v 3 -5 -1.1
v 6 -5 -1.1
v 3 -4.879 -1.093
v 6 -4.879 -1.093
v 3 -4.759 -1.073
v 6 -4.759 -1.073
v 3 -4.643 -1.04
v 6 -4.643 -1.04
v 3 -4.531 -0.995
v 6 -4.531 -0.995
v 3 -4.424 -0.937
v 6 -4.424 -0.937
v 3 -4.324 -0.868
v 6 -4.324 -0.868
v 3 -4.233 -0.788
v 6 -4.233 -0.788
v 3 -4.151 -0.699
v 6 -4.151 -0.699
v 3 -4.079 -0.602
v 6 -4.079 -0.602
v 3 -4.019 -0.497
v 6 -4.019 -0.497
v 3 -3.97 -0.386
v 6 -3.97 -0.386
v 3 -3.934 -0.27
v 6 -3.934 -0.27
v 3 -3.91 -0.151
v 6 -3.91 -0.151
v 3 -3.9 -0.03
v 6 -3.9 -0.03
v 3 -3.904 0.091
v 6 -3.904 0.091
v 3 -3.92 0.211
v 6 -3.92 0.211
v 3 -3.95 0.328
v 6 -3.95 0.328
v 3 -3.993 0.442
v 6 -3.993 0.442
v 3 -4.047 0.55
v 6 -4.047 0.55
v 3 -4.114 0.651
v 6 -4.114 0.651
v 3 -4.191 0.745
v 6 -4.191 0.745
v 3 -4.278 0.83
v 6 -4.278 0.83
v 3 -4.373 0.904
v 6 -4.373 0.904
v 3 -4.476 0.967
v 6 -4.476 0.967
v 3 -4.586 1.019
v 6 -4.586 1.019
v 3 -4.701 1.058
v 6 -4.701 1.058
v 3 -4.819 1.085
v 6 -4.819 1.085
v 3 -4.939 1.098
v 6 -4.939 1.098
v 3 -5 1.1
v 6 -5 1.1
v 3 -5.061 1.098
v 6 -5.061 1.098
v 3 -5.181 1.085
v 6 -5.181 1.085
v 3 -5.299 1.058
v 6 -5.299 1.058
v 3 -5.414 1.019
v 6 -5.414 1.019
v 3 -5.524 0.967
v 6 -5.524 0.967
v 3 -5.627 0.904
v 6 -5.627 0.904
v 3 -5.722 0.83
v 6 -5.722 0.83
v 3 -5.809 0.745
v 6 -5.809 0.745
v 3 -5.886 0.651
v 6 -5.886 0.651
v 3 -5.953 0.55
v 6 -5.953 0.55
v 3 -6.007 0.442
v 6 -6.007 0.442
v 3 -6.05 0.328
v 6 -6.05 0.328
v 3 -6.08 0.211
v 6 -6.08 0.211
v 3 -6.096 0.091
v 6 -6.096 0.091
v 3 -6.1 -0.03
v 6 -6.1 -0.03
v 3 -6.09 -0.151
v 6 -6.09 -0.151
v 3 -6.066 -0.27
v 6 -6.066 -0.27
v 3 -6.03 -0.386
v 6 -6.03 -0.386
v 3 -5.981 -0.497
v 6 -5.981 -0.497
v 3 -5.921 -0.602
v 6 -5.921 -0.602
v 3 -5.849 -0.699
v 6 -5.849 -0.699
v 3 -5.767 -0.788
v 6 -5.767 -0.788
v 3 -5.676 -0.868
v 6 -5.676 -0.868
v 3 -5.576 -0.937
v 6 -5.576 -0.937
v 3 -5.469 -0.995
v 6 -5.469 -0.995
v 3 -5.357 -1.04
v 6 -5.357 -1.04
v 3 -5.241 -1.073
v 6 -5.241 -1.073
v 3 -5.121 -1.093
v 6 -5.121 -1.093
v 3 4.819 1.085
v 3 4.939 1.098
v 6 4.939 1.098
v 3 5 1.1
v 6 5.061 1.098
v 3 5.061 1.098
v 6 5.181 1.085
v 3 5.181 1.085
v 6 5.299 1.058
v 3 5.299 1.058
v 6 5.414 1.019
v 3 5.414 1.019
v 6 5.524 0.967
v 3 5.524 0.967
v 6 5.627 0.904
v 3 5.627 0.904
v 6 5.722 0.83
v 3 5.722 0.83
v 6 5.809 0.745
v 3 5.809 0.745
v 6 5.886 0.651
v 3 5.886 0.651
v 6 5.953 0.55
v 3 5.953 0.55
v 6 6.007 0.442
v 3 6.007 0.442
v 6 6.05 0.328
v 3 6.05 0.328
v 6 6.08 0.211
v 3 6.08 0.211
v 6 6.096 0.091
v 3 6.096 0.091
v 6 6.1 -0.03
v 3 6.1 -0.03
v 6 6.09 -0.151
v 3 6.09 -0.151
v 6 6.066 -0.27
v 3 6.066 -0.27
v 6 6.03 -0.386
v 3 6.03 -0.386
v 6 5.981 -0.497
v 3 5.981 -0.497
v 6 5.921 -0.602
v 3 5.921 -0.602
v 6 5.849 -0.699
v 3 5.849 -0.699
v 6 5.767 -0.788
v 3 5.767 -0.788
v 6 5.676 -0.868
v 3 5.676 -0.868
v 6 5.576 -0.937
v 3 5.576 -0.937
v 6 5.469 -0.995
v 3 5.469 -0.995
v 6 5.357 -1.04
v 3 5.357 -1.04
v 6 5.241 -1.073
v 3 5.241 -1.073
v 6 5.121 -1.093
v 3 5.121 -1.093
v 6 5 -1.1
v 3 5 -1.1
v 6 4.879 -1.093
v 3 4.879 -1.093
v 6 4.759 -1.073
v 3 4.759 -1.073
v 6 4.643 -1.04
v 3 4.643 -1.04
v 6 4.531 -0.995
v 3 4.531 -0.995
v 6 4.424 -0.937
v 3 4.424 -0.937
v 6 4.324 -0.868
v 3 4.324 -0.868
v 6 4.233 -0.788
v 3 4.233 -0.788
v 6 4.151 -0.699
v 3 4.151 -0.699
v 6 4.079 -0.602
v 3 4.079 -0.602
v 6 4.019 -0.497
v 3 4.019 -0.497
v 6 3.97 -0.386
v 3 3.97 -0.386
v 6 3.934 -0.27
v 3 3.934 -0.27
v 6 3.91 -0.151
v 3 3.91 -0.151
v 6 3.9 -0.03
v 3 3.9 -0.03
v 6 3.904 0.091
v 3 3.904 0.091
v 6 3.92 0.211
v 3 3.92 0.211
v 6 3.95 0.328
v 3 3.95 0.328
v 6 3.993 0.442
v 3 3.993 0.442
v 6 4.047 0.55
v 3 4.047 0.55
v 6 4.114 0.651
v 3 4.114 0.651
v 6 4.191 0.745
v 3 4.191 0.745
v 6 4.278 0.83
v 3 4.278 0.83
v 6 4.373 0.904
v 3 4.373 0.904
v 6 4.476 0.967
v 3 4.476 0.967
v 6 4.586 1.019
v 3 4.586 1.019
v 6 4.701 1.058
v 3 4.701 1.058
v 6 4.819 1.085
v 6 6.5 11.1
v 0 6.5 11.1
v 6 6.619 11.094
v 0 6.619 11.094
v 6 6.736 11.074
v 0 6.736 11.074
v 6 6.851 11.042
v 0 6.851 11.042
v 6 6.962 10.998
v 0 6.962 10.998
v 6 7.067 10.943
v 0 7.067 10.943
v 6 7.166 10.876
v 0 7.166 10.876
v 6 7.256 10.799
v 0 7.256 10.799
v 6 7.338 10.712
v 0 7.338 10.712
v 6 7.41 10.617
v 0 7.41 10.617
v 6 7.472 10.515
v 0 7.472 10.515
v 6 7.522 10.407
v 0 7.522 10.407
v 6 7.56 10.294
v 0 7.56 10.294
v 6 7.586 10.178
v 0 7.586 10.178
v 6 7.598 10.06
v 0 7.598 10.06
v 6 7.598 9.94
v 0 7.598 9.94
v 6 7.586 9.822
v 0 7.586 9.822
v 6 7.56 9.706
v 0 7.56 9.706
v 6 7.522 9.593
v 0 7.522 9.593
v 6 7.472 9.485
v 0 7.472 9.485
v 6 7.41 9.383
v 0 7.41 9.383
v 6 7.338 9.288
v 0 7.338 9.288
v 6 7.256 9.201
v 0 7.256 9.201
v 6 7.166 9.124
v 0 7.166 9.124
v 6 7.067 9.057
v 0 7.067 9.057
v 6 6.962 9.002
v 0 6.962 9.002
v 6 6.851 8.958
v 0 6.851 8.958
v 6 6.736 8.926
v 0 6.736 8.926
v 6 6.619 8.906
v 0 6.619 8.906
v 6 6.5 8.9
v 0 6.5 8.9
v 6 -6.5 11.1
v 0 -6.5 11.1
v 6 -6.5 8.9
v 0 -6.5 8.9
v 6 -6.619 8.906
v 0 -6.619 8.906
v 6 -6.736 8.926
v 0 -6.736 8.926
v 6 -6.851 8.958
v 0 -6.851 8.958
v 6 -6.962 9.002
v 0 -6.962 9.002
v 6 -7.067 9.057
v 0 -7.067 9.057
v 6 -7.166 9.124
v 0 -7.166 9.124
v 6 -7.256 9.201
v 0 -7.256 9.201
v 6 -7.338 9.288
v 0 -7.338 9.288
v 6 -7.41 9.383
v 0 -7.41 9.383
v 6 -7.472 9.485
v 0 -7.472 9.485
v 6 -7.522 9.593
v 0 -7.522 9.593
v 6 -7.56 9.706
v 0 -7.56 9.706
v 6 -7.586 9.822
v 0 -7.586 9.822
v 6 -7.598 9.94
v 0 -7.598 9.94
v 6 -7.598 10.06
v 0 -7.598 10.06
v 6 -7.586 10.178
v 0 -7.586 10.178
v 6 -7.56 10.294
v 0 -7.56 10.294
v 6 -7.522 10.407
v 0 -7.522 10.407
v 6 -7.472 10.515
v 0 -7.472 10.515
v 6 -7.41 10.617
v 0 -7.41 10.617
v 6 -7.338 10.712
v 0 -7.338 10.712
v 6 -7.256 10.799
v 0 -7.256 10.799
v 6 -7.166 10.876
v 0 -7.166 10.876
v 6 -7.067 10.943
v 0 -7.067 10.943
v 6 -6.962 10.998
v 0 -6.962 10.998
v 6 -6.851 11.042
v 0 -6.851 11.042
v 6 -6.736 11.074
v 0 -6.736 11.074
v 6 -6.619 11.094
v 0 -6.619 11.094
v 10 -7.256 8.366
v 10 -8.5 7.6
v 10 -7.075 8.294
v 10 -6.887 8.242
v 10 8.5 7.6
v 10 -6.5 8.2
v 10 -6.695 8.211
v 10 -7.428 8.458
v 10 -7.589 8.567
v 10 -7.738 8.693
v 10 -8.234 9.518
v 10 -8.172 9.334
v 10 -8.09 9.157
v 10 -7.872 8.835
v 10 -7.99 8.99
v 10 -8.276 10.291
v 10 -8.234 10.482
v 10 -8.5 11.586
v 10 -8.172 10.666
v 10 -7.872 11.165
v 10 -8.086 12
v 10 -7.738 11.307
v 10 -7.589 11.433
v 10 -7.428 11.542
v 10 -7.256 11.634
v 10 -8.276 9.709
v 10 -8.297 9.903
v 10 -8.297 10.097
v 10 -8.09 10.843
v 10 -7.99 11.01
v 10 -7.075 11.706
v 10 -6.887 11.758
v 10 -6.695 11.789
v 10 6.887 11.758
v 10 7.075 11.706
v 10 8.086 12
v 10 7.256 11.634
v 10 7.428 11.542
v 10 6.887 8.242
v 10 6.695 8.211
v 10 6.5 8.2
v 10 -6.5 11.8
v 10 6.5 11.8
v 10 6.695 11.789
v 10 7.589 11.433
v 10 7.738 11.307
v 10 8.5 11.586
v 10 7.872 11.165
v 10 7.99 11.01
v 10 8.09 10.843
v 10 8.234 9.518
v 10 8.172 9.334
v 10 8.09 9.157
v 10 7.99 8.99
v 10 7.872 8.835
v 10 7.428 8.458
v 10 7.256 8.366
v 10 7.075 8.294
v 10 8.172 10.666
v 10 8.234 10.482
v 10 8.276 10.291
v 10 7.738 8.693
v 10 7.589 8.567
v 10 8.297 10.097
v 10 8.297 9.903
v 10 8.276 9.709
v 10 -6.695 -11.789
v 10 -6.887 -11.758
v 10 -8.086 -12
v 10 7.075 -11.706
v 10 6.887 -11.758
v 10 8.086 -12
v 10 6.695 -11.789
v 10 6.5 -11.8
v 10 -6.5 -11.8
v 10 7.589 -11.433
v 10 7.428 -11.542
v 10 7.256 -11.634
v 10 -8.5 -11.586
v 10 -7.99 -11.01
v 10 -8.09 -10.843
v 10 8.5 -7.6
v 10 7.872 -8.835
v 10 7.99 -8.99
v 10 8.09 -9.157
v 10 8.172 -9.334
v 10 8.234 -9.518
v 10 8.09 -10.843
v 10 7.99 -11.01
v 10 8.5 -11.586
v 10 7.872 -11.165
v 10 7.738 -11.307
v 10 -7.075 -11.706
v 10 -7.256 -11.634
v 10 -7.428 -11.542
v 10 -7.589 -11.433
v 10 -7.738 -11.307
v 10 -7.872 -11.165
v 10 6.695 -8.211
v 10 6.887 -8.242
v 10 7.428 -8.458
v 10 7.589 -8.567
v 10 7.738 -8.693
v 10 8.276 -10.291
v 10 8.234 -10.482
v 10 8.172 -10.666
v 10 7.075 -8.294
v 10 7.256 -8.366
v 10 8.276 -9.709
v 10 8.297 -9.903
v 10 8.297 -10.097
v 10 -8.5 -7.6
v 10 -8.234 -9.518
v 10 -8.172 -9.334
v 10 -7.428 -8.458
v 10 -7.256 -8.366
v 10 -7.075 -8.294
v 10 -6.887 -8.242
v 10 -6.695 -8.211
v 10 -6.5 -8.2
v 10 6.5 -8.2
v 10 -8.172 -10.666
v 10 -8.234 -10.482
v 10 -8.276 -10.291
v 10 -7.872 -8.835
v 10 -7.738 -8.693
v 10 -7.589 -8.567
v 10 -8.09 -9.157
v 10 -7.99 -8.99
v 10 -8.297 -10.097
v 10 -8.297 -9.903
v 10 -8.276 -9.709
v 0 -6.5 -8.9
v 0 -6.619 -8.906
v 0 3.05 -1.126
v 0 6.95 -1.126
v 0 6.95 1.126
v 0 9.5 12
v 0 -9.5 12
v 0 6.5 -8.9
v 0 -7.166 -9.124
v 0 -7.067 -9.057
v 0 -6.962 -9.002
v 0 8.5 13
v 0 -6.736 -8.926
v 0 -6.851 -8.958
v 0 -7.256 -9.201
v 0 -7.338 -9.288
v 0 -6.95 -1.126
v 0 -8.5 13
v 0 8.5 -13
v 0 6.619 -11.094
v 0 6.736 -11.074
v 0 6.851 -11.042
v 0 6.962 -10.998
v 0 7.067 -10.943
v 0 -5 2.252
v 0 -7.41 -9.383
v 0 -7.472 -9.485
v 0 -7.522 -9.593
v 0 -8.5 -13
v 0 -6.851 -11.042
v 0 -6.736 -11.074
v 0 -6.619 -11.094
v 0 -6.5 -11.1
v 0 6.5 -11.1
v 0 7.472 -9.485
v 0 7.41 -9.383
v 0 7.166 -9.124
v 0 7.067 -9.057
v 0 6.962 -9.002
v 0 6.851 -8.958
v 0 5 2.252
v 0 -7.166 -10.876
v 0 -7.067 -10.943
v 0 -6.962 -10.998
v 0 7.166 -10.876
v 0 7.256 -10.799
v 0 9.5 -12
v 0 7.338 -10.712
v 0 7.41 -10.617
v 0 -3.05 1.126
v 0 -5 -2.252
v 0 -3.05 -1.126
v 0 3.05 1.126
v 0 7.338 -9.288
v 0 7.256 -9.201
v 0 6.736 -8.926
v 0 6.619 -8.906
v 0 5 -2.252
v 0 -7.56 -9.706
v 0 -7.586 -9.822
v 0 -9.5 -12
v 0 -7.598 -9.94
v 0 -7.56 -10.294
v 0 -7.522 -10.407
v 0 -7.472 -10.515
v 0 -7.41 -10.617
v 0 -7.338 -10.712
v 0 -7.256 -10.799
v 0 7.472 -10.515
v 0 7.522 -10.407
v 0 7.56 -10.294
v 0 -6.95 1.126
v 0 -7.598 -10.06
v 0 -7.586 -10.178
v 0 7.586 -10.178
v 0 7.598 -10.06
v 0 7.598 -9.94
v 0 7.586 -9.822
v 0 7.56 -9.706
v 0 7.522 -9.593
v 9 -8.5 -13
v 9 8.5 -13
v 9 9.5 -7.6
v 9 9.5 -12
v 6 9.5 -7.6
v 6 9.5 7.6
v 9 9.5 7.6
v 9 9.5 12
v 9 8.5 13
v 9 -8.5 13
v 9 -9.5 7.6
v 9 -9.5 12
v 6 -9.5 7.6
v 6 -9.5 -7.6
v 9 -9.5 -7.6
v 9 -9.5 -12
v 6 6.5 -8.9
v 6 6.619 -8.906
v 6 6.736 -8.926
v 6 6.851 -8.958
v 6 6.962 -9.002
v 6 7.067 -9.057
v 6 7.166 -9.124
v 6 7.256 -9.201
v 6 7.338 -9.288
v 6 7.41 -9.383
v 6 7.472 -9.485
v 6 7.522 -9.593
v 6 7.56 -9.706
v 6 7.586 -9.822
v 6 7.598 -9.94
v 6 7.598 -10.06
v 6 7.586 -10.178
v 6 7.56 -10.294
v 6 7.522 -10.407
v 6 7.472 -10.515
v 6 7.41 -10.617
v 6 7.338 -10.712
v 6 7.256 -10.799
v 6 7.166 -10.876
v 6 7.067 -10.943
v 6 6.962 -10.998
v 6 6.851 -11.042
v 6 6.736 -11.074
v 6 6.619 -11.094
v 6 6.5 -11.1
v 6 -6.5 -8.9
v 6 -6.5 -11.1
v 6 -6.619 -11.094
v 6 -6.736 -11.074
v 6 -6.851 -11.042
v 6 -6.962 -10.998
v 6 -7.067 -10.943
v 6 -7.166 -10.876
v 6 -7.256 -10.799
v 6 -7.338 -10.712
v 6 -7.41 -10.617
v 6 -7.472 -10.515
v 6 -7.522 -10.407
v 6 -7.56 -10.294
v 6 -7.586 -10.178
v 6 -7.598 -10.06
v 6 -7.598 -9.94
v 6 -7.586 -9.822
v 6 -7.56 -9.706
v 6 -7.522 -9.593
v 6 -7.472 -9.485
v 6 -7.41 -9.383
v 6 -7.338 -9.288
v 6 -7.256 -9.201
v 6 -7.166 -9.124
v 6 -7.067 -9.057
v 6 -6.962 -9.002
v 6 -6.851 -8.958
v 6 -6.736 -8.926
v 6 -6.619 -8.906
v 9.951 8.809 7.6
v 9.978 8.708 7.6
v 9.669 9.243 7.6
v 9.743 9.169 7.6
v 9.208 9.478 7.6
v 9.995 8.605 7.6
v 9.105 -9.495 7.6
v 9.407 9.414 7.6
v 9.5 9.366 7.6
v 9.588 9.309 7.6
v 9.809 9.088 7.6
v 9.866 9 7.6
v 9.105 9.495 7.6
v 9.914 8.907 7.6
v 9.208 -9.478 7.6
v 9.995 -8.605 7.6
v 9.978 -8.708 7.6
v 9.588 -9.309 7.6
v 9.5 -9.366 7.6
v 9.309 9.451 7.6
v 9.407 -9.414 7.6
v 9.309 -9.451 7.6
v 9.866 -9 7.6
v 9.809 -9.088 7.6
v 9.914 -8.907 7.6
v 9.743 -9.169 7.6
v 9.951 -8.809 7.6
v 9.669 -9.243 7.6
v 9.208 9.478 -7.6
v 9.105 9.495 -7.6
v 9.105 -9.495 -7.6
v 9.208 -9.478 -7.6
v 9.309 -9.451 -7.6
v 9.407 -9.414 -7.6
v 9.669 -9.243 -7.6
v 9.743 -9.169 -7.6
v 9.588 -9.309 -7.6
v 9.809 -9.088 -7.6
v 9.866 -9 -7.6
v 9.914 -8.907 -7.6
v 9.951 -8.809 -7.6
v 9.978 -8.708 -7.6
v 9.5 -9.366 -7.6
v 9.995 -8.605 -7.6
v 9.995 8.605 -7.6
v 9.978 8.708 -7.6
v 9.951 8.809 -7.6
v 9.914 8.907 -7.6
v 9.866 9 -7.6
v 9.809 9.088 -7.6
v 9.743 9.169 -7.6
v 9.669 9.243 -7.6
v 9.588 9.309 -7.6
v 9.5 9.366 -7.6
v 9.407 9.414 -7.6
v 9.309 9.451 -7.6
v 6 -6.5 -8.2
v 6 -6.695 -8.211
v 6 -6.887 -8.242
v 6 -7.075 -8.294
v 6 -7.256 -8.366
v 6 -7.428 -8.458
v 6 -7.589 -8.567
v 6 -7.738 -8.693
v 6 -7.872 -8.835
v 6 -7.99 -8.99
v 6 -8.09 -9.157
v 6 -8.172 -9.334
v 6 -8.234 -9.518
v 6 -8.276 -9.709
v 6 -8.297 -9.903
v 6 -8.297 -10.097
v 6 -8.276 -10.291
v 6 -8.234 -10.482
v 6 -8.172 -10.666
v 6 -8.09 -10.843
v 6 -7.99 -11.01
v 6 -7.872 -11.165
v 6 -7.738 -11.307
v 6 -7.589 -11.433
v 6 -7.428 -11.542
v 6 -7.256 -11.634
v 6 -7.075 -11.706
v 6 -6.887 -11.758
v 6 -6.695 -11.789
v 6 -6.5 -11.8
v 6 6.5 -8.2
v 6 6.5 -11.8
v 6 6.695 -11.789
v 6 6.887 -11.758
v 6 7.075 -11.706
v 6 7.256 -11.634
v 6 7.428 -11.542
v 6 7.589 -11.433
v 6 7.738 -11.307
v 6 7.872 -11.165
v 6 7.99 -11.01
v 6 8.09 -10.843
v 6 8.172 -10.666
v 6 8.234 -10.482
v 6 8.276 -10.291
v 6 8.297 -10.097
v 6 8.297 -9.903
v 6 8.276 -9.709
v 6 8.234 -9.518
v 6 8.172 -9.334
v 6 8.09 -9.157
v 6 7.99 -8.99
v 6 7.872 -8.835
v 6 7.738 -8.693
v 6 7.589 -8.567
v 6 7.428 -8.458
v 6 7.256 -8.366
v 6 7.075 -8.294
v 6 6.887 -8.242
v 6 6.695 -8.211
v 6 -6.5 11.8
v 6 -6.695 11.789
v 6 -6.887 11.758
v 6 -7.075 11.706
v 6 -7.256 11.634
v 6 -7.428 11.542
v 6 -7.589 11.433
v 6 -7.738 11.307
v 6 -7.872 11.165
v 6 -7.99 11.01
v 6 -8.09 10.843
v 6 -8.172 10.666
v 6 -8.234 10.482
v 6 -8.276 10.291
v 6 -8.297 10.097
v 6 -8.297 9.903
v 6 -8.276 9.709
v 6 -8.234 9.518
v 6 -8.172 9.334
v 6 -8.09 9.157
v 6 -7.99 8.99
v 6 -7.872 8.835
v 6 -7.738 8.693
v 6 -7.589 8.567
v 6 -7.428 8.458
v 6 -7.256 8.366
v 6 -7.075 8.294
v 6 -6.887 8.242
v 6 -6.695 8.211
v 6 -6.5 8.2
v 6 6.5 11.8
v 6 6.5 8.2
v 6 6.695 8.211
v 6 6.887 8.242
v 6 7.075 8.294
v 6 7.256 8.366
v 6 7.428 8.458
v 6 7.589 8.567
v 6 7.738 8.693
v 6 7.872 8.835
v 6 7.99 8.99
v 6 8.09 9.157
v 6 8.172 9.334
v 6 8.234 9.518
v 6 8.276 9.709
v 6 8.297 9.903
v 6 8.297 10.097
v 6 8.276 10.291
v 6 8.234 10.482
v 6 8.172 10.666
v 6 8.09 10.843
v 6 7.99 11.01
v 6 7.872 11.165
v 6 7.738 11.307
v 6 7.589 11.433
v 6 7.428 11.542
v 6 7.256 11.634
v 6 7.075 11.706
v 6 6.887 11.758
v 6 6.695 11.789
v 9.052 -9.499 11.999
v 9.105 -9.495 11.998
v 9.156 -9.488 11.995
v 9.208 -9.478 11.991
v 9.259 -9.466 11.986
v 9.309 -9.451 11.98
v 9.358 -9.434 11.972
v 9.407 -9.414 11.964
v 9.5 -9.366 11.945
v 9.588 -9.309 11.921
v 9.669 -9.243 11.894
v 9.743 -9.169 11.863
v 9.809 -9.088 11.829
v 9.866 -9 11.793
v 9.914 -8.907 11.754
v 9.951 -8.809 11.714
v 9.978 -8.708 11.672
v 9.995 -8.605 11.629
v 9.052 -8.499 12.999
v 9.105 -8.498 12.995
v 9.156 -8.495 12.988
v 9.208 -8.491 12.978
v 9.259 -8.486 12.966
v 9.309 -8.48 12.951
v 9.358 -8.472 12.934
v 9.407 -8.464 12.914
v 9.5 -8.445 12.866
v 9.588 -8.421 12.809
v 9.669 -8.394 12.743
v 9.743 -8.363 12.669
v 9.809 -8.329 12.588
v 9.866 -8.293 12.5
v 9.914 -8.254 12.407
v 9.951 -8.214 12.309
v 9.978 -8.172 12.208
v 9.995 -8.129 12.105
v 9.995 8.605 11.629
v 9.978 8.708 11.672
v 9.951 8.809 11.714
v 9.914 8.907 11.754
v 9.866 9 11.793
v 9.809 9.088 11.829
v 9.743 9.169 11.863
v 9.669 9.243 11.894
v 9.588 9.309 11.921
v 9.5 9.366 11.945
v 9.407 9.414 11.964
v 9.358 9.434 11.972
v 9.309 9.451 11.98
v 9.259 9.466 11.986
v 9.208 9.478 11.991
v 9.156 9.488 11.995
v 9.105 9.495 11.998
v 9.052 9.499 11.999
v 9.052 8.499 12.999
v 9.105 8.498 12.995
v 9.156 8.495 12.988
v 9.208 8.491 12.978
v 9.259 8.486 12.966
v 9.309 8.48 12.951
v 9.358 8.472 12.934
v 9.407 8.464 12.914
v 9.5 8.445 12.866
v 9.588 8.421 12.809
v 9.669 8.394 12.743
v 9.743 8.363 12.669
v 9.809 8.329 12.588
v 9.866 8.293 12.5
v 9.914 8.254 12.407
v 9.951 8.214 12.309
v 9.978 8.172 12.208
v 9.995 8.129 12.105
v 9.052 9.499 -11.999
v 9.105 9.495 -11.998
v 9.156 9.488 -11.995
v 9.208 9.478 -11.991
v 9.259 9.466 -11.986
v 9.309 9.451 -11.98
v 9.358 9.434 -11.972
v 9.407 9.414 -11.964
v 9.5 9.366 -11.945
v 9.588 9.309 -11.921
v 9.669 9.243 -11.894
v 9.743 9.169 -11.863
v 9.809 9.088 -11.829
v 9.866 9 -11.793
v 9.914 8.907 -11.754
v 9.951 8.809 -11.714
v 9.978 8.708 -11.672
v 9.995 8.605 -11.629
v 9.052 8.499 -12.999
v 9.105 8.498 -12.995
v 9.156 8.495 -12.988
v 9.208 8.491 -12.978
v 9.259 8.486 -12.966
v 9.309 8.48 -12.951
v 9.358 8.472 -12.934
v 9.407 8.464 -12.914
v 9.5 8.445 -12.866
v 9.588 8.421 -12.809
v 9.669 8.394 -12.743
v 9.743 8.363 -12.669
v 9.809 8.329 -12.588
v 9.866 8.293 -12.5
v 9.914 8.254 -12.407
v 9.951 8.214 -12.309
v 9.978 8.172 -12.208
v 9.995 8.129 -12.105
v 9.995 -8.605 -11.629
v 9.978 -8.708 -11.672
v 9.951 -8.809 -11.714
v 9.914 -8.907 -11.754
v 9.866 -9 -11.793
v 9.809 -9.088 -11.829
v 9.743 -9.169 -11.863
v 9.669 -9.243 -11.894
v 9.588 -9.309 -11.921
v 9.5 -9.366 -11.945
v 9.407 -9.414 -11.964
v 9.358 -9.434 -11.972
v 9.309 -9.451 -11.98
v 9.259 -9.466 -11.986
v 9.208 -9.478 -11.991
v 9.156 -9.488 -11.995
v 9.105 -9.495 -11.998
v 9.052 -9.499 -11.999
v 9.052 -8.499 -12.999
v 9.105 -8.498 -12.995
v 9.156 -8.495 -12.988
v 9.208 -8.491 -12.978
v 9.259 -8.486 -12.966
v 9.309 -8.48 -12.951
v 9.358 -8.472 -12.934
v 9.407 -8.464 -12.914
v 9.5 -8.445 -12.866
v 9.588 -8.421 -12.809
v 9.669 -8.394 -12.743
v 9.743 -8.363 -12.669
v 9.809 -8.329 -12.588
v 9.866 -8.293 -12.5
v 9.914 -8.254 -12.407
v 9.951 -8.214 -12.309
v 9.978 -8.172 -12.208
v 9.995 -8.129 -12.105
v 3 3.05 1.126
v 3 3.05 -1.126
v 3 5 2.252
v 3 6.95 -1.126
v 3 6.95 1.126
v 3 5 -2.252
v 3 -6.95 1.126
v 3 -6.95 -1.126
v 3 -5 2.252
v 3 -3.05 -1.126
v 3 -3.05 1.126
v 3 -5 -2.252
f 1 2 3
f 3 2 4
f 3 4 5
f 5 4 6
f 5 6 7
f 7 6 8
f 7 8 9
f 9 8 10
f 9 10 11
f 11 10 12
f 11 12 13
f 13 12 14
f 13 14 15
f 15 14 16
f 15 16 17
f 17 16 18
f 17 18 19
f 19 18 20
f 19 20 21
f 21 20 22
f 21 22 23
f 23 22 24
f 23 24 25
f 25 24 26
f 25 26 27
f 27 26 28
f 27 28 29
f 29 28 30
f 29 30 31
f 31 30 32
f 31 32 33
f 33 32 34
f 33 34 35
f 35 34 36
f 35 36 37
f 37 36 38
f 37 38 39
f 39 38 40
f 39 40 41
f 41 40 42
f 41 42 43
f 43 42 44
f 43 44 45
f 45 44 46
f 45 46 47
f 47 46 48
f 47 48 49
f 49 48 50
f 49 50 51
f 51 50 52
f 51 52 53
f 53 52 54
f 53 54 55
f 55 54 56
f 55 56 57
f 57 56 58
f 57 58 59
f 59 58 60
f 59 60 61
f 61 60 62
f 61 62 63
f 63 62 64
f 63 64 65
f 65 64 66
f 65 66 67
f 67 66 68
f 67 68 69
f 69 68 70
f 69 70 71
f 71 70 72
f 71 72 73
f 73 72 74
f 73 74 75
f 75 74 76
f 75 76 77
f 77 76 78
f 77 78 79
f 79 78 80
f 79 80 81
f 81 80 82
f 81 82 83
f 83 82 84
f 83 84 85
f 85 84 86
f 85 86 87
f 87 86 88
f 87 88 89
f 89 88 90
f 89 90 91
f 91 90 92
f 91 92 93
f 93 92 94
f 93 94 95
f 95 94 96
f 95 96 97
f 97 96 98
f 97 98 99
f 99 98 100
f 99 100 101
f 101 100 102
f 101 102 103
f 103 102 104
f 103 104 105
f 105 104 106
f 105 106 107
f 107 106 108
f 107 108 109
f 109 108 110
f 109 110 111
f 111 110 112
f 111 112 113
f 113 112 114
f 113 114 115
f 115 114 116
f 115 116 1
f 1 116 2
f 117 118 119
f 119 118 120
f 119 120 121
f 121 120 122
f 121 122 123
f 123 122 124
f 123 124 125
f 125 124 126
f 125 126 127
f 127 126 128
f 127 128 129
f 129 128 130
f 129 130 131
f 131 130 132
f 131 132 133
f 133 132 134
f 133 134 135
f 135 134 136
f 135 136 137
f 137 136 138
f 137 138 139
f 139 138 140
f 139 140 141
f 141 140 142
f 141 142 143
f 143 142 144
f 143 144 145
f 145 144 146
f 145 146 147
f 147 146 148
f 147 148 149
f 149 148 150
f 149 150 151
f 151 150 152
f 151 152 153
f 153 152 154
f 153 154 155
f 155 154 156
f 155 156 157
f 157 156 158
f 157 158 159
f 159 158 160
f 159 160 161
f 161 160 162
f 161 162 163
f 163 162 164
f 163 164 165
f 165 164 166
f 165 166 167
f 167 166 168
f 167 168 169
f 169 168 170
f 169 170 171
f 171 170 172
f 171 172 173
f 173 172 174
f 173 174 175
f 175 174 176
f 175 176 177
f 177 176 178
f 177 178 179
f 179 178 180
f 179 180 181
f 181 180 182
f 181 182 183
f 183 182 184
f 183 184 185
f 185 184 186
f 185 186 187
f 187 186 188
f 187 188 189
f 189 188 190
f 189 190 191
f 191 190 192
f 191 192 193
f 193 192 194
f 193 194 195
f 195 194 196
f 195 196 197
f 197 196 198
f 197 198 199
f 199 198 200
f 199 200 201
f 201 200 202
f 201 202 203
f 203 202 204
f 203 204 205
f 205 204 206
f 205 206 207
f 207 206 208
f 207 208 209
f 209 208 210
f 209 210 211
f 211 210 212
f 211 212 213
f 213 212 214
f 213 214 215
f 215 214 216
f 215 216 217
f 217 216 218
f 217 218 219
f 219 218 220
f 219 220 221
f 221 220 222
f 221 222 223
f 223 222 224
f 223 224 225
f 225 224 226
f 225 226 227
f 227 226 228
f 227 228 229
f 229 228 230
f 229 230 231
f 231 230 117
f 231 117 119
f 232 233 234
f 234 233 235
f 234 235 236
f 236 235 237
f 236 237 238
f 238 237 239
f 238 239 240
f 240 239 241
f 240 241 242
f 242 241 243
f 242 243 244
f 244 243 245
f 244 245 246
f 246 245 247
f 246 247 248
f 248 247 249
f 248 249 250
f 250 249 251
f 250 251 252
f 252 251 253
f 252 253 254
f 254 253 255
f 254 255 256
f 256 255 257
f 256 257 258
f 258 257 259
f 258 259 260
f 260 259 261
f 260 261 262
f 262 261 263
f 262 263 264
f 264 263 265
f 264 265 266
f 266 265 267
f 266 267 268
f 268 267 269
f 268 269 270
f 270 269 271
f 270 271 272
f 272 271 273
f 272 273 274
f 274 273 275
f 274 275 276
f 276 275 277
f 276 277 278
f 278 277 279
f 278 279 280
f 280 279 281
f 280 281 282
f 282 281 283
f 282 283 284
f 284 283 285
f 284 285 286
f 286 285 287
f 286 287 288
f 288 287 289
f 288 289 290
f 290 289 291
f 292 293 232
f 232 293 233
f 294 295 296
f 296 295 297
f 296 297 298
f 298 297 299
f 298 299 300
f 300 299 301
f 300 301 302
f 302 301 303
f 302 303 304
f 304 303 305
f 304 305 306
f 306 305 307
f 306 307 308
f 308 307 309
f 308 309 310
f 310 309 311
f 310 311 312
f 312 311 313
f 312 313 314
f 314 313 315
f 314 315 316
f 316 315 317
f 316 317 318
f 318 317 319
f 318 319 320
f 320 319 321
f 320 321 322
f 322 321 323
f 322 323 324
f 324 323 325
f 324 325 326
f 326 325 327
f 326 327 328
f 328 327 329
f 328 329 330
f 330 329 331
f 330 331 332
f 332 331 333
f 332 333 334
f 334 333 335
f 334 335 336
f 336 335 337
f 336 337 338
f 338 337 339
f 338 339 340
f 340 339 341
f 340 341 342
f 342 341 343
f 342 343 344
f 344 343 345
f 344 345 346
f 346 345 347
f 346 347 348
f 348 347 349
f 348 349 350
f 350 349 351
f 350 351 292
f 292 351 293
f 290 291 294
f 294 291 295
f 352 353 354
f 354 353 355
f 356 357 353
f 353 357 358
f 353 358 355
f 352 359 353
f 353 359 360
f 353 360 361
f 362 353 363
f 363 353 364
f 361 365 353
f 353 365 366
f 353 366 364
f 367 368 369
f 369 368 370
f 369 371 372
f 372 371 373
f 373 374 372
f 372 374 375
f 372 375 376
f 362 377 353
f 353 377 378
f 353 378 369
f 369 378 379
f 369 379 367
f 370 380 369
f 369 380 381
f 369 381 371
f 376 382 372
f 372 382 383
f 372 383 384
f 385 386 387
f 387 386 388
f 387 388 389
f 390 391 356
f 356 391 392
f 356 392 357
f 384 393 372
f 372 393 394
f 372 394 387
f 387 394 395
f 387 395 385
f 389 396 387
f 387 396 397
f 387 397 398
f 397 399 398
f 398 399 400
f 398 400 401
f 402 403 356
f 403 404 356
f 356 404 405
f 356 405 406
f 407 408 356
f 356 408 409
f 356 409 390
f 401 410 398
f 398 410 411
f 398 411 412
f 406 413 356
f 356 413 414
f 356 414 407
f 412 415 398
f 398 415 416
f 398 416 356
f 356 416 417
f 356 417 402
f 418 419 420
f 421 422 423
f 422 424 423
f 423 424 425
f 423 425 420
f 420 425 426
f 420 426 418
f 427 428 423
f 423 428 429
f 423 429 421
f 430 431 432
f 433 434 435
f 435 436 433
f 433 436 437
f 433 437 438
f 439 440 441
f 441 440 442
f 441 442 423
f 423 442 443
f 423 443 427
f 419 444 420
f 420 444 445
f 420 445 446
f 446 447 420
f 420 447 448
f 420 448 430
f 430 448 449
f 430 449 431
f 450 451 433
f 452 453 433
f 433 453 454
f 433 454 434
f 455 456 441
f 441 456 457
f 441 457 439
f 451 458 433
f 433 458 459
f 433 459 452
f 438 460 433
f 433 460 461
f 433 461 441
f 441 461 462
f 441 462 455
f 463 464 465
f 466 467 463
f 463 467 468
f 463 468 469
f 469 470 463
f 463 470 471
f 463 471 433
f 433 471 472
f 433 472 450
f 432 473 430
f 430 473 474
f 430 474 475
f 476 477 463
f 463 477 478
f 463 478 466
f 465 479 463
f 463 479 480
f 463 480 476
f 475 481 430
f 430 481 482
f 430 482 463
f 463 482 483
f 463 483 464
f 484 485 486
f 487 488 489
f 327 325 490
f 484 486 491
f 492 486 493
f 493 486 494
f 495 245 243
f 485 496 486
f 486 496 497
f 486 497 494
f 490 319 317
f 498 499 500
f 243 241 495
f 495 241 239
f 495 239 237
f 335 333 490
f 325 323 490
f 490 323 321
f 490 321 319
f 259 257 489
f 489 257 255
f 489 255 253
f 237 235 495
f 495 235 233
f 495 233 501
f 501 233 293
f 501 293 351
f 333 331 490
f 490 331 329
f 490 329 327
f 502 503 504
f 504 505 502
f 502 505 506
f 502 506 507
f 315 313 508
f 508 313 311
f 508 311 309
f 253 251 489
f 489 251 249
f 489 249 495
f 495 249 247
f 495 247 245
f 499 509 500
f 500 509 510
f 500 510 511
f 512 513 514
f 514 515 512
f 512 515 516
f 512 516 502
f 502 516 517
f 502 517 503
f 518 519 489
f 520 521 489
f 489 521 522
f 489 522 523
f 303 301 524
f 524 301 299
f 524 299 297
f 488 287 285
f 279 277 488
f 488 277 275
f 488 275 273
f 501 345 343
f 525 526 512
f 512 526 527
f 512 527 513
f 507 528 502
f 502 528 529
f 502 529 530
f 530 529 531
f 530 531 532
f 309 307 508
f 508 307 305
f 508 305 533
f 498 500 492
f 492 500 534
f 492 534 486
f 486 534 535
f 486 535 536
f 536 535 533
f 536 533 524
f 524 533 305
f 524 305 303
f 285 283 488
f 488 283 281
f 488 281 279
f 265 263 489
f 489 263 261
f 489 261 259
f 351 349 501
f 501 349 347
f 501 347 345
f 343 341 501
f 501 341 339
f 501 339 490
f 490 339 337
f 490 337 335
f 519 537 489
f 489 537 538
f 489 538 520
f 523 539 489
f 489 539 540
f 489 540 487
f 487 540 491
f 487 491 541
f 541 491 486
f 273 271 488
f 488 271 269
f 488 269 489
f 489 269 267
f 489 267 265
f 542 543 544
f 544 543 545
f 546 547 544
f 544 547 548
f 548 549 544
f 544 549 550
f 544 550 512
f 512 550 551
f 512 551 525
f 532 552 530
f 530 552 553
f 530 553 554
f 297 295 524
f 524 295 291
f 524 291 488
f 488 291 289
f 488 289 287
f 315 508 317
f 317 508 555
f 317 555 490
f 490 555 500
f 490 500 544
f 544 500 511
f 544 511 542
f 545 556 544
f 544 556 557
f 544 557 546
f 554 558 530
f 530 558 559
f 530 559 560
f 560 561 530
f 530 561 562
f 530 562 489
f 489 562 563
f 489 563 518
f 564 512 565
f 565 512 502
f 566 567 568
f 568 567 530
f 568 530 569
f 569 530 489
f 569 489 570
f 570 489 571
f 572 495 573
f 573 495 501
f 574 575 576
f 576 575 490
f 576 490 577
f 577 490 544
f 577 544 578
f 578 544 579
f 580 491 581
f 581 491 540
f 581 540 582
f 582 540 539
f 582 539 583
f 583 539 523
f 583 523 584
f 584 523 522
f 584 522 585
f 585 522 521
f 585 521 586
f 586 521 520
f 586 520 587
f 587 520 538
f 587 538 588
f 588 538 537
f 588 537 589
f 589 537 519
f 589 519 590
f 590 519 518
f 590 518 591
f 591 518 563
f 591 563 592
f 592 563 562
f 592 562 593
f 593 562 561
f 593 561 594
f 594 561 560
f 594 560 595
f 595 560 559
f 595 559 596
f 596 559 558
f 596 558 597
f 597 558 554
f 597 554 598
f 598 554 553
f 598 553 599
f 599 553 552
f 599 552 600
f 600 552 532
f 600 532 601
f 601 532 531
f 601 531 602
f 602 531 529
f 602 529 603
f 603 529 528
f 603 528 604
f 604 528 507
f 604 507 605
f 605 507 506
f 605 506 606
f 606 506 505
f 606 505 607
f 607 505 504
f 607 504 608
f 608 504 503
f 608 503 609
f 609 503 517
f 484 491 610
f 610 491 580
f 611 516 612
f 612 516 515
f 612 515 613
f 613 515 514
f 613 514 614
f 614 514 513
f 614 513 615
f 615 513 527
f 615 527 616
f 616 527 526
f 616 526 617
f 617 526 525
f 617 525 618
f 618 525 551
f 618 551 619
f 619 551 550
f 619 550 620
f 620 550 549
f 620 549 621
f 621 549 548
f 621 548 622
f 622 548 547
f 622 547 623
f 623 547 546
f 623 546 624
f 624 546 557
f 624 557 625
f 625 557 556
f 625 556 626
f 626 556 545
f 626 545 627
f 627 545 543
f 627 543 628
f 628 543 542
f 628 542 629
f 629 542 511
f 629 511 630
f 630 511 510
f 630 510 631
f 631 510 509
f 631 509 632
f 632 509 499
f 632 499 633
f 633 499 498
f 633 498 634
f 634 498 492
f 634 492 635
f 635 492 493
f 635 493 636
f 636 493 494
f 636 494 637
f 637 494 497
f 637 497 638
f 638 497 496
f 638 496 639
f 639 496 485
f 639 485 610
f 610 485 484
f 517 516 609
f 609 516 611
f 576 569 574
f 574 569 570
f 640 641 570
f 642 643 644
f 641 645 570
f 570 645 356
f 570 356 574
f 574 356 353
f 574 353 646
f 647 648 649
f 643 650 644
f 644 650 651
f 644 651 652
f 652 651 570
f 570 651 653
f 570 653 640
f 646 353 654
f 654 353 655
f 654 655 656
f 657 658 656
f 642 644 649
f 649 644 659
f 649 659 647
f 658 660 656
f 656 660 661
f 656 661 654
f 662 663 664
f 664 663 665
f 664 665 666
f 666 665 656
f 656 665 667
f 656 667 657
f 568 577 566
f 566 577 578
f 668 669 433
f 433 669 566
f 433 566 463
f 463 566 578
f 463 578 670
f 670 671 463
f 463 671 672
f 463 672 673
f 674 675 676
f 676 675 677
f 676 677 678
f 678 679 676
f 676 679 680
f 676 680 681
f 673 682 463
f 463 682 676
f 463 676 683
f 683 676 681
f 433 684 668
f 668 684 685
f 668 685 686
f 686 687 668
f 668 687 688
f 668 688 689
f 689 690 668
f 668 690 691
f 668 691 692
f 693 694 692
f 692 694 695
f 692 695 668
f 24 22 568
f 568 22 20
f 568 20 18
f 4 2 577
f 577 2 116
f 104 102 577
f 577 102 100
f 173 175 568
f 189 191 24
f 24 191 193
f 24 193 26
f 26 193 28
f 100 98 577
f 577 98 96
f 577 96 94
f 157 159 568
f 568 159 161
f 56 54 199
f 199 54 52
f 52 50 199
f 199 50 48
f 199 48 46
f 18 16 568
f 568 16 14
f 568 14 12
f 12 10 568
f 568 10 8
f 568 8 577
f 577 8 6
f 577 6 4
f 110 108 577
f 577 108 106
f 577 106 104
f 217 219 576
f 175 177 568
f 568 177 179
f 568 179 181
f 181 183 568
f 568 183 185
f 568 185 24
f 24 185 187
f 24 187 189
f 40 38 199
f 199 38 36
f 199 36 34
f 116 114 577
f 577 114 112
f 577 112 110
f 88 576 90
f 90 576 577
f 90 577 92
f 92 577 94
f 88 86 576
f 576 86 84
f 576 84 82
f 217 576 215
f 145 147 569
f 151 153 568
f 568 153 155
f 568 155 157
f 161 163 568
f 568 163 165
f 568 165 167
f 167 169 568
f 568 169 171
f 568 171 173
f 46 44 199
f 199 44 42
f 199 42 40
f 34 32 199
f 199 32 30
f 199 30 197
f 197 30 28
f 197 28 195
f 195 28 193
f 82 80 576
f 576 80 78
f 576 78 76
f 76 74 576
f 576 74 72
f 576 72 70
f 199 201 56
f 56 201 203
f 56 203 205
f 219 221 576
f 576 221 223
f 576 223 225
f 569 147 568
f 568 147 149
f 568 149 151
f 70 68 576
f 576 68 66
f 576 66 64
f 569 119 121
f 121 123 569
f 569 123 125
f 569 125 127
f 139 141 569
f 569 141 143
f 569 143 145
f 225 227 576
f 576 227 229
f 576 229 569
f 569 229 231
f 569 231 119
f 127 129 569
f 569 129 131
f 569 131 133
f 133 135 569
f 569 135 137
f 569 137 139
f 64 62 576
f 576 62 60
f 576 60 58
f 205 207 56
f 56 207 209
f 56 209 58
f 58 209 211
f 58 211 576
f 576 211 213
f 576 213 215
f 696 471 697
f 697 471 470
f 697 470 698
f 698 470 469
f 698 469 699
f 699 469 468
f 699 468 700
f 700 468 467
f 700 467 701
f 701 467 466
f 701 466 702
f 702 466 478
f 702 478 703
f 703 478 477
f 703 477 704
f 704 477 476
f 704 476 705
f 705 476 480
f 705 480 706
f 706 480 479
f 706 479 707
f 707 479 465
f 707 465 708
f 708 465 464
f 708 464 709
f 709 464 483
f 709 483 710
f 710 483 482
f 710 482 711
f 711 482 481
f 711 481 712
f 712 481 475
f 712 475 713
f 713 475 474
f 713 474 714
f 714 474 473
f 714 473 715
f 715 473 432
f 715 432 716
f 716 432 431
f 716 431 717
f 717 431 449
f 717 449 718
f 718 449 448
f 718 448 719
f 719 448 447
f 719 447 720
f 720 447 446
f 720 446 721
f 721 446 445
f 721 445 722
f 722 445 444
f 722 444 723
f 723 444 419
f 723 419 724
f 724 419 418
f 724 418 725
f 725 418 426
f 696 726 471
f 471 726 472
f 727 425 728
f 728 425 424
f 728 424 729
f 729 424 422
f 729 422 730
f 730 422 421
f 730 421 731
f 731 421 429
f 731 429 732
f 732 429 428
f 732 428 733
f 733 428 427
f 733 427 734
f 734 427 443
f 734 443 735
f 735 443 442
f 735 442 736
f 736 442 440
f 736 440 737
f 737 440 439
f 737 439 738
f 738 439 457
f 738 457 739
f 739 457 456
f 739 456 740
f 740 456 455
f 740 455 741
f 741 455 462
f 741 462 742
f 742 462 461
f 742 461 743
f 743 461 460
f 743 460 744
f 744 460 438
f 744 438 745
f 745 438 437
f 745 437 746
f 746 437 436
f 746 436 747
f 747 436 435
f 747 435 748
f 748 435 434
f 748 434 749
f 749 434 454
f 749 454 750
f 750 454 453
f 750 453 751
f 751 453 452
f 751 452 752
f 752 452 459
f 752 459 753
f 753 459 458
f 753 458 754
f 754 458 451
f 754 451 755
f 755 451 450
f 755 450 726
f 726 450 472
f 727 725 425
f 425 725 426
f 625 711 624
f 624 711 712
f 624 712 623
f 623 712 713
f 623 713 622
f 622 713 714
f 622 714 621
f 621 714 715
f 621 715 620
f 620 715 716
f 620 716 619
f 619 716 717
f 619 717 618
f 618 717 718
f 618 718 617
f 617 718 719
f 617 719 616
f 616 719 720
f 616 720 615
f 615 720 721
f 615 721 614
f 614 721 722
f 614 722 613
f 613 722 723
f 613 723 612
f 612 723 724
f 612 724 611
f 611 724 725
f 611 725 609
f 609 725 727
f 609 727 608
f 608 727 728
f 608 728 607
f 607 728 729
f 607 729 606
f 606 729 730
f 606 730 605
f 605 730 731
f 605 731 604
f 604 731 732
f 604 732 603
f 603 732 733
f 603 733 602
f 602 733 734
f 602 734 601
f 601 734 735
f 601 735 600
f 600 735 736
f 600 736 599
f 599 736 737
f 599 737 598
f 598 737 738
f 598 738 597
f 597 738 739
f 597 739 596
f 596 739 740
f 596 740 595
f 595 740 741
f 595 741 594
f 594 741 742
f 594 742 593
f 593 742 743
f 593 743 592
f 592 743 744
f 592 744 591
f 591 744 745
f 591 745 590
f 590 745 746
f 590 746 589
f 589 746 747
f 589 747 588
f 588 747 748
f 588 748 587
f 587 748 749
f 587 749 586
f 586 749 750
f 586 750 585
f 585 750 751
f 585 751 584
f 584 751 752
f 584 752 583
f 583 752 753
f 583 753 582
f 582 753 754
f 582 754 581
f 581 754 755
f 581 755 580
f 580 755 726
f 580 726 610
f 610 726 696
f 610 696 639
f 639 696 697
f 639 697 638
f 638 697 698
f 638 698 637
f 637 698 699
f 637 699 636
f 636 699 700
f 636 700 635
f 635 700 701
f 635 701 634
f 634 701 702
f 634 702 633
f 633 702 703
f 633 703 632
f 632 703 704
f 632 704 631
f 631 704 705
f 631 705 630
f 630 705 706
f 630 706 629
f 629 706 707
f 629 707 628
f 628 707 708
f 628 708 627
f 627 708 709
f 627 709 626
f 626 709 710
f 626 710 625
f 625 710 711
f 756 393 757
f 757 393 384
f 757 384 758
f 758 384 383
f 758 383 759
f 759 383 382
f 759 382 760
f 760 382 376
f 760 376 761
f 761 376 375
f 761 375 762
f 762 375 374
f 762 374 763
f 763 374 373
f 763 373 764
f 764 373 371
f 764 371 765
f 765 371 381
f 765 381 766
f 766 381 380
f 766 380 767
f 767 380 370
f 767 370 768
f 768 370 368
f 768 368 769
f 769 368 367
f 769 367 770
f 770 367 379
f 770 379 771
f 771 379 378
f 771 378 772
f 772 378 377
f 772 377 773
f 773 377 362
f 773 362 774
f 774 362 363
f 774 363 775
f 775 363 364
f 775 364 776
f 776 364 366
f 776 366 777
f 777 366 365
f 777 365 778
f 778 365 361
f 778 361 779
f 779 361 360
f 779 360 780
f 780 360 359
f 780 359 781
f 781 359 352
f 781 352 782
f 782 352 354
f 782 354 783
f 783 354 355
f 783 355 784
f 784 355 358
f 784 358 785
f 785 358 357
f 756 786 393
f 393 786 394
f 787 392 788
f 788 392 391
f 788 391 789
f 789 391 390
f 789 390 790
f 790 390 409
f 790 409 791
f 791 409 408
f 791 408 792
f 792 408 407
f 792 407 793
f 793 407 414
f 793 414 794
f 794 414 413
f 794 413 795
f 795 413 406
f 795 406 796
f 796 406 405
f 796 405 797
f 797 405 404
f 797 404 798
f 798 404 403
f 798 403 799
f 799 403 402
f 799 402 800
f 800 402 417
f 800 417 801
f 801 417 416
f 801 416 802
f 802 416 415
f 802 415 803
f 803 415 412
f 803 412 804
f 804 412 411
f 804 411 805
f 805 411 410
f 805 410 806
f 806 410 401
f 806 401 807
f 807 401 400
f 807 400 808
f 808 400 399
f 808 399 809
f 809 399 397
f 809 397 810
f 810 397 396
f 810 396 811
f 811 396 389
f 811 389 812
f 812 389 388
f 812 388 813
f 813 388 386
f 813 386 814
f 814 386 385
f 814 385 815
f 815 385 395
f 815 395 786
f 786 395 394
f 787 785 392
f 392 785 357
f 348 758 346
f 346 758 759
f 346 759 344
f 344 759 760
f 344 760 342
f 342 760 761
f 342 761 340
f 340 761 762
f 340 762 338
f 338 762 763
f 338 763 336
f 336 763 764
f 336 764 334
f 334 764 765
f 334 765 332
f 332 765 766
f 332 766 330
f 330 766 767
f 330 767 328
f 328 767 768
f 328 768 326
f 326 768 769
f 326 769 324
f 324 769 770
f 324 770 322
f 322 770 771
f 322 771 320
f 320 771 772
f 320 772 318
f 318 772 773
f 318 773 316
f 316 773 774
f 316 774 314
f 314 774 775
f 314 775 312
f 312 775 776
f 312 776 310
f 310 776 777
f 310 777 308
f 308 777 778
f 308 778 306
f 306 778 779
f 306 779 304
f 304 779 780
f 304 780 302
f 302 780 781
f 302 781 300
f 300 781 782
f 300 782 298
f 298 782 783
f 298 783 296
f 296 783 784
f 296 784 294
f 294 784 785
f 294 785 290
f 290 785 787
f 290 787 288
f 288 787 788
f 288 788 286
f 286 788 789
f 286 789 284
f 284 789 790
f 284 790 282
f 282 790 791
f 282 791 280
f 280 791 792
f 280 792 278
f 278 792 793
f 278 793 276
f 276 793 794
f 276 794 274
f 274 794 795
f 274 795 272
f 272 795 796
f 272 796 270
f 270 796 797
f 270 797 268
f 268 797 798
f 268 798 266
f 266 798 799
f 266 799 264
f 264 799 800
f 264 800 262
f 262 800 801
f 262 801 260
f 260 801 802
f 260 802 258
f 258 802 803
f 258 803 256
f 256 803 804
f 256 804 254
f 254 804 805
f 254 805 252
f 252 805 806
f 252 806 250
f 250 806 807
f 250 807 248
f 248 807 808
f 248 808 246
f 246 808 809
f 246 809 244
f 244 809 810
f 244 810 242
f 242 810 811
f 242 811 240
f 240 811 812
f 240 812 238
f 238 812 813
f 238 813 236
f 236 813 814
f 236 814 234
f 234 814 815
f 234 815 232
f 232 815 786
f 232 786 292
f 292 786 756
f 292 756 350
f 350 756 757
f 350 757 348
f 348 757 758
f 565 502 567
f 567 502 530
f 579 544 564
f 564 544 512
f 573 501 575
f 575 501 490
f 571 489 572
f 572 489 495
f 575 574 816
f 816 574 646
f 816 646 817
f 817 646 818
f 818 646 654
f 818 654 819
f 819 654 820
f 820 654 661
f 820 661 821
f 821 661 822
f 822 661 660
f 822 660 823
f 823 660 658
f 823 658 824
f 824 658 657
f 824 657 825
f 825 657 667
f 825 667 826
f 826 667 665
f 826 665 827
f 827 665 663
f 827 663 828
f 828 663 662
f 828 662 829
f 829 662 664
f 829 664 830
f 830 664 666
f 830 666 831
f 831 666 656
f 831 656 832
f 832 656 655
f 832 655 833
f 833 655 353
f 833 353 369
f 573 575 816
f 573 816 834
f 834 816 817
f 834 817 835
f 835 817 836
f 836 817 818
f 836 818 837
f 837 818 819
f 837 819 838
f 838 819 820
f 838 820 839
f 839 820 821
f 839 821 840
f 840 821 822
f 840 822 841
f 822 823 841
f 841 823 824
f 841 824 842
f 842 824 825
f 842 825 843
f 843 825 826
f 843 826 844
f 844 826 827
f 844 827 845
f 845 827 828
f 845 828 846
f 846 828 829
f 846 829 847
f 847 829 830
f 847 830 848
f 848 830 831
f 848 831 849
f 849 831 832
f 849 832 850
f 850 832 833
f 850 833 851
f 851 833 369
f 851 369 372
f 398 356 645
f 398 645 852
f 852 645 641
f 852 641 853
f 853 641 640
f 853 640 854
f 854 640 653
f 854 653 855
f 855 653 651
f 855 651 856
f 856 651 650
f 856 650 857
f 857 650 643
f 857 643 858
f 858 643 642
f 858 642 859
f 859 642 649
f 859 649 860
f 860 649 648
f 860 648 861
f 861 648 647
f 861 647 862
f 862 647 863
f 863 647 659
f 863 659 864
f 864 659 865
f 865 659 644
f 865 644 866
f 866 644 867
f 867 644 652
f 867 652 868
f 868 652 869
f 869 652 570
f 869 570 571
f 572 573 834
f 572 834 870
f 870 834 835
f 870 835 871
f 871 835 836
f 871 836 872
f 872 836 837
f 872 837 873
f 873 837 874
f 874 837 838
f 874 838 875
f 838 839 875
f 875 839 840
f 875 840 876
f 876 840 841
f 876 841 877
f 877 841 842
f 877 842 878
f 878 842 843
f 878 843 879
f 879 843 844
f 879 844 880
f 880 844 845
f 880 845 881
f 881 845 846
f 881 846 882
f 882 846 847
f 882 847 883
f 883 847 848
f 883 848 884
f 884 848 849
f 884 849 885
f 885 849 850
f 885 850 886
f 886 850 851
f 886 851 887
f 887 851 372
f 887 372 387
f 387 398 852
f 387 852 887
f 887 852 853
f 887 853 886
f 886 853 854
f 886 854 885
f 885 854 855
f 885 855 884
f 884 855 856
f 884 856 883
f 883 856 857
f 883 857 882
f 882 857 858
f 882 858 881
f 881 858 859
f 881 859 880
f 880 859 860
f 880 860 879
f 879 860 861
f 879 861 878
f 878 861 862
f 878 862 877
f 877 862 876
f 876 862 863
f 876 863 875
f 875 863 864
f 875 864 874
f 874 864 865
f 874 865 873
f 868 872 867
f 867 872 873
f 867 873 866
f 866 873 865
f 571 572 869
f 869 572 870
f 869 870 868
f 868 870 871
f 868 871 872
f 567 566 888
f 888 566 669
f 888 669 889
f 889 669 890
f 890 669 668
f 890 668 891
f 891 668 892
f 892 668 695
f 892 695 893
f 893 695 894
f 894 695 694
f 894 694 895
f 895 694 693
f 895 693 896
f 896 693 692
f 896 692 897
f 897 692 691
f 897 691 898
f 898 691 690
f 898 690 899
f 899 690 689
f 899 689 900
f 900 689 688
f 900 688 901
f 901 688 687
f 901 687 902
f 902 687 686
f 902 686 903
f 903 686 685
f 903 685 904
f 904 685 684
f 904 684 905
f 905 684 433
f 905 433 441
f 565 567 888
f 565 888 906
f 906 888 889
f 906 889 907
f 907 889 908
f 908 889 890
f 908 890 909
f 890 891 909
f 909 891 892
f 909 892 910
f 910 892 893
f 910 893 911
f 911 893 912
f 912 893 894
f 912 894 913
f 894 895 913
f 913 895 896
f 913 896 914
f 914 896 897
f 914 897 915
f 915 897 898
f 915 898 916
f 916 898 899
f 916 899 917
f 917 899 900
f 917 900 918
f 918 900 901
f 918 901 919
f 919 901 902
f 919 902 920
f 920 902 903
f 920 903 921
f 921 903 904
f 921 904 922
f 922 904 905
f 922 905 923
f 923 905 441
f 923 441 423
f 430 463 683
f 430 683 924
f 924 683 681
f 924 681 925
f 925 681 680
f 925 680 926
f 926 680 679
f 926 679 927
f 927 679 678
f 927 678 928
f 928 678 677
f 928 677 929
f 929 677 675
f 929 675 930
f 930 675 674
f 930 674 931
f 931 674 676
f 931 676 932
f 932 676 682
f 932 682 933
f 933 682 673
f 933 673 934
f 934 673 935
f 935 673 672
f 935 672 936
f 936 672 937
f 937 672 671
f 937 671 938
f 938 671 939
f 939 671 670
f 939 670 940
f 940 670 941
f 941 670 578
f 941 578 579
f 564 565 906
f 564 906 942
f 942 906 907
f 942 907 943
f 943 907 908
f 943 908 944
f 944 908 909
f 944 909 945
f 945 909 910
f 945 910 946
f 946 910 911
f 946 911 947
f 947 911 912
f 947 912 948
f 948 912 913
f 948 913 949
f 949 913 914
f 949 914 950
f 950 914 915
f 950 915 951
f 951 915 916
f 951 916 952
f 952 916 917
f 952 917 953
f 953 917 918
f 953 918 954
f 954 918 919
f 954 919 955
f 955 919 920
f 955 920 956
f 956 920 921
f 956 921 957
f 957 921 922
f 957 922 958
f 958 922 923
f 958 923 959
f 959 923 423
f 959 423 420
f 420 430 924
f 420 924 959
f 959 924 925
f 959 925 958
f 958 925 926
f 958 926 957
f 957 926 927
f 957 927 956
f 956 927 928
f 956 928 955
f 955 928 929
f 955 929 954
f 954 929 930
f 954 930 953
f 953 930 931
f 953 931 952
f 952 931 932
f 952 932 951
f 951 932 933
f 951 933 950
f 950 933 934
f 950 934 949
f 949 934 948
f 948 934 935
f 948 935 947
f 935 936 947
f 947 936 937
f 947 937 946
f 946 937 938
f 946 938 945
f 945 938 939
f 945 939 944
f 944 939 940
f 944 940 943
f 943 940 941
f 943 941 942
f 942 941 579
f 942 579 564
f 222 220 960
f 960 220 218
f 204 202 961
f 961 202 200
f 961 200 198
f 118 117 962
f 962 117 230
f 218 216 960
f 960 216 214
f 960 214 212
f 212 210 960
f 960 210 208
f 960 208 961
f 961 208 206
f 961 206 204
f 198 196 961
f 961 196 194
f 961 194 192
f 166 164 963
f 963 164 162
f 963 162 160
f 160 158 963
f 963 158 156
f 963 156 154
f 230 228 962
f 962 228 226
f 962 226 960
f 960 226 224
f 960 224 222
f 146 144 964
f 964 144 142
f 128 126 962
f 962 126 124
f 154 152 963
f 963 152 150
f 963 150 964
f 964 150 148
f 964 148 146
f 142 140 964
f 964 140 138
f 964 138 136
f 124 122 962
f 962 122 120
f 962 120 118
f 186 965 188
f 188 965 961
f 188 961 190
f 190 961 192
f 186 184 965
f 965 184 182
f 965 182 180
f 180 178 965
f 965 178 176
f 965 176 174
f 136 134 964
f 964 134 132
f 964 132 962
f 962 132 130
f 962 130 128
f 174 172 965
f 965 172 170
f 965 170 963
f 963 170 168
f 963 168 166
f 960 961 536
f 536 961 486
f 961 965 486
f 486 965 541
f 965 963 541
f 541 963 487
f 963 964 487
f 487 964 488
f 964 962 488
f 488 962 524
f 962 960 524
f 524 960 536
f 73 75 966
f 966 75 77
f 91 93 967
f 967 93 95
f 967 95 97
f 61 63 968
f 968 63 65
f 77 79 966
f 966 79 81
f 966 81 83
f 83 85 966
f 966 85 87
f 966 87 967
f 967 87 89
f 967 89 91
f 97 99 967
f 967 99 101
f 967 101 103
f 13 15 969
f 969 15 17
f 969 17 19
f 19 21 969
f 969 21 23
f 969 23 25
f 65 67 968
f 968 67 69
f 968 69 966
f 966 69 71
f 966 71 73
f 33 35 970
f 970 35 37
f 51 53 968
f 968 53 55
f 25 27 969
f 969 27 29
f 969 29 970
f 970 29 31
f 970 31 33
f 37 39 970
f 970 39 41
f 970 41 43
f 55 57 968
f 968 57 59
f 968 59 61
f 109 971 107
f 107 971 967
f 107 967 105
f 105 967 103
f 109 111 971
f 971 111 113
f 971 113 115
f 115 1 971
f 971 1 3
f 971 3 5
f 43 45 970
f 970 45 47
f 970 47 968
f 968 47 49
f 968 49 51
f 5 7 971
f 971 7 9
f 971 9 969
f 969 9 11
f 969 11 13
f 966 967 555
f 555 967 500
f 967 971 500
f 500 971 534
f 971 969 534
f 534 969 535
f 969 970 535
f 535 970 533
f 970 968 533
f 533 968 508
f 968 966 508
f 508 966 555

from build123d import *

# Parameters (mm, degrees)
SKETCH_1_W          = 26
SKETCH_1_H          = 19
EXTRUDE_1_DEPTH     = 10
SKETCH_2_W          = 15.2
SKETCH_2_H          = 19
CUT_EXTRUDE_1_DEPTH = 4
CUT_EXTRUDE_2_DEPTH = 4
CHAMFER_1_SIZE      = 1
FILLET_1_R          = 1
SKETCH_4_R          = 1.1
CUT_EXTRUDE_3_DEPTH = 18.182840277
CUT_EXTRUDE_4_DEPTH = 3


with BuildPart() as part:
    # Эскиз1 → Бобышка-Вытянуть1 (new body)
    with BuildSketch(Plane(origin=(0, 0, 0), x_dir=(0, 0, -1), z_dir=(1, 0, 0))):
        Rectangle(SKETCH_1_W, SKETCH_1_H)
        with BuildLine():
            Line((-8.9, 6.5), (-8.9, -6.5))
            ThreePointArc((-8.9, -6.5), (-10, -7.6), (-11.1, -6.5))
            Line((-11.1, -6.5), (-11.1, 6.5))
            ThreePointArc((-11.1, 6.5), (-10, 7.6), (-8.9, 6.5))
        make_face(mode=Mode.SUBTRACT)
        with BuildLine():
            Line((8.9, 6.5), (8.9, -6.5))
            ThreePointArc((8.9, -6.5), (10, -7.6), (11.1, -6.5))
            Line((11.1, -6.5), (11.1, 6.5))
            ThreePointArc((11.1, 6.5), (10, 7.6), (8.9, 6.5))
        make_face(mode=Mode.SUBTRACT)
    extrude(amount=EXTRUDE_1_DEPTH)

    # Эскиз2 → Вырез-Вытянуть1 (cut)
    with BuildSketch(Plane(origin=(10, 0, 0), x_dir=(0, 0, -1), z_dir=(1, 0, 0))):
        Rectangle(SKETCH_2_W, SKETCH_2_H)
    extrude(amount=-CUT_EXTRUDE_1_DEPTH, mode=Mode.SUBTRACT)

    # Эскиз3 → Вырез-Вытянуть2 (cut)
    with BuildSketch(Plane(origin=(10, 0, 0), x_dir=(0, 0, -1), z_dir=(1, 0, 0))):
        with BuildLine():
            Line((-11.8, -6.5), (-11.8, 6.5))
            ThreePointArc((-11.8, 6.5), (-10, 8.3), (-8.2, 6.5))
            Line((-8.2, 6.5), (-8.2, -6.5))
            ThreePointArc((-8.2, -6.5), (-10, -8.3), (-11.8, -6.5))
        make_face()
        with BuildLine():
            Line((11.8, -6.5), (11.8, 6.5))
            ThreePointArc((11.8, 6.5), (10, 8.3), (8.2, 6.5))
            Line((8.2, 6.5), (8.2, -6.5))
            ThreePointArc((8.2, -6.5), (10, -8.3), (11.8, -6.5))
        make_face()
    extrude(amount=-CUT_EXTRUDE_2_DEPTH, mode=Mode.SUBTRACT)

    # Фаска1
    chamfer_1_edges = [part.edges().sort_by_distance(p)[0] for p in [
        (5, -9.5, -13),
        (5, -9.5, 13),
        (5, 9.5, 13),
        (5, 9.5, -13),
    ]]
    chamfer(chamfer_1_edges, length=CHAMFER_1_SIZE)

    # Скругление1
    fillet_1_edges = [part.edges().sort_by_distance(p)[0] for p in [
        (10, 9.5, -9.8),
        (10, 0, -13),
        (10, -9, -12.5),
        (10, 9, -12.5),
        (10, -9.5, 9.8),
        (10, 0, 13),
        (10, 9, 12.5),
        (10, -9, 12.5),
        (10, -9.5, -9.8),
        (10, 9.5, 9.8),
    ]]
    fillet(fillet_1_edges, radius=FILLET_1_R)

    # Эскиз4 → Вырез-Вытянуть3 (cut, through all)
    with BuildSketch(Plane(origin=(6, 0, 0), x_dir=(0, 0, -1), z_dir=(1, 0, 0))):
        with Locations((0, 5)):
            Circle(SKETCH_4_R)
        with Locations(Location((0, -5, 0), (0, 0, 180))):
            Circle(SKETCH_4_R)
    extrude(amount=-CUT_EXTRUDE_3_DEPTH, mode=Mode.SUBTRACT)

    # Эскиз5 → Вырез-Вытянуть4 (cut)
    with BuildSketch(Plane.ZY):
        Polygon((1.125833025, 3.05), (2.25166605, 5), (1.125833025, 6.95), (-1.125833025, 6.95), (-2.25166605, 5), (-1.125833025, 3.05), align=None)
        Polygon((1.125833025, -6.95), (2.25166605, -5), (1.125833025, -3.05), (-1.125833025, -3.05), (-2.25166605, -5), (-1.125833025, -6.95), align=None)
    extrude(amount=-CUT_EXTRUDE_4_DEPTH, mode=Mode.SUBTRACT)


solid = part.part
